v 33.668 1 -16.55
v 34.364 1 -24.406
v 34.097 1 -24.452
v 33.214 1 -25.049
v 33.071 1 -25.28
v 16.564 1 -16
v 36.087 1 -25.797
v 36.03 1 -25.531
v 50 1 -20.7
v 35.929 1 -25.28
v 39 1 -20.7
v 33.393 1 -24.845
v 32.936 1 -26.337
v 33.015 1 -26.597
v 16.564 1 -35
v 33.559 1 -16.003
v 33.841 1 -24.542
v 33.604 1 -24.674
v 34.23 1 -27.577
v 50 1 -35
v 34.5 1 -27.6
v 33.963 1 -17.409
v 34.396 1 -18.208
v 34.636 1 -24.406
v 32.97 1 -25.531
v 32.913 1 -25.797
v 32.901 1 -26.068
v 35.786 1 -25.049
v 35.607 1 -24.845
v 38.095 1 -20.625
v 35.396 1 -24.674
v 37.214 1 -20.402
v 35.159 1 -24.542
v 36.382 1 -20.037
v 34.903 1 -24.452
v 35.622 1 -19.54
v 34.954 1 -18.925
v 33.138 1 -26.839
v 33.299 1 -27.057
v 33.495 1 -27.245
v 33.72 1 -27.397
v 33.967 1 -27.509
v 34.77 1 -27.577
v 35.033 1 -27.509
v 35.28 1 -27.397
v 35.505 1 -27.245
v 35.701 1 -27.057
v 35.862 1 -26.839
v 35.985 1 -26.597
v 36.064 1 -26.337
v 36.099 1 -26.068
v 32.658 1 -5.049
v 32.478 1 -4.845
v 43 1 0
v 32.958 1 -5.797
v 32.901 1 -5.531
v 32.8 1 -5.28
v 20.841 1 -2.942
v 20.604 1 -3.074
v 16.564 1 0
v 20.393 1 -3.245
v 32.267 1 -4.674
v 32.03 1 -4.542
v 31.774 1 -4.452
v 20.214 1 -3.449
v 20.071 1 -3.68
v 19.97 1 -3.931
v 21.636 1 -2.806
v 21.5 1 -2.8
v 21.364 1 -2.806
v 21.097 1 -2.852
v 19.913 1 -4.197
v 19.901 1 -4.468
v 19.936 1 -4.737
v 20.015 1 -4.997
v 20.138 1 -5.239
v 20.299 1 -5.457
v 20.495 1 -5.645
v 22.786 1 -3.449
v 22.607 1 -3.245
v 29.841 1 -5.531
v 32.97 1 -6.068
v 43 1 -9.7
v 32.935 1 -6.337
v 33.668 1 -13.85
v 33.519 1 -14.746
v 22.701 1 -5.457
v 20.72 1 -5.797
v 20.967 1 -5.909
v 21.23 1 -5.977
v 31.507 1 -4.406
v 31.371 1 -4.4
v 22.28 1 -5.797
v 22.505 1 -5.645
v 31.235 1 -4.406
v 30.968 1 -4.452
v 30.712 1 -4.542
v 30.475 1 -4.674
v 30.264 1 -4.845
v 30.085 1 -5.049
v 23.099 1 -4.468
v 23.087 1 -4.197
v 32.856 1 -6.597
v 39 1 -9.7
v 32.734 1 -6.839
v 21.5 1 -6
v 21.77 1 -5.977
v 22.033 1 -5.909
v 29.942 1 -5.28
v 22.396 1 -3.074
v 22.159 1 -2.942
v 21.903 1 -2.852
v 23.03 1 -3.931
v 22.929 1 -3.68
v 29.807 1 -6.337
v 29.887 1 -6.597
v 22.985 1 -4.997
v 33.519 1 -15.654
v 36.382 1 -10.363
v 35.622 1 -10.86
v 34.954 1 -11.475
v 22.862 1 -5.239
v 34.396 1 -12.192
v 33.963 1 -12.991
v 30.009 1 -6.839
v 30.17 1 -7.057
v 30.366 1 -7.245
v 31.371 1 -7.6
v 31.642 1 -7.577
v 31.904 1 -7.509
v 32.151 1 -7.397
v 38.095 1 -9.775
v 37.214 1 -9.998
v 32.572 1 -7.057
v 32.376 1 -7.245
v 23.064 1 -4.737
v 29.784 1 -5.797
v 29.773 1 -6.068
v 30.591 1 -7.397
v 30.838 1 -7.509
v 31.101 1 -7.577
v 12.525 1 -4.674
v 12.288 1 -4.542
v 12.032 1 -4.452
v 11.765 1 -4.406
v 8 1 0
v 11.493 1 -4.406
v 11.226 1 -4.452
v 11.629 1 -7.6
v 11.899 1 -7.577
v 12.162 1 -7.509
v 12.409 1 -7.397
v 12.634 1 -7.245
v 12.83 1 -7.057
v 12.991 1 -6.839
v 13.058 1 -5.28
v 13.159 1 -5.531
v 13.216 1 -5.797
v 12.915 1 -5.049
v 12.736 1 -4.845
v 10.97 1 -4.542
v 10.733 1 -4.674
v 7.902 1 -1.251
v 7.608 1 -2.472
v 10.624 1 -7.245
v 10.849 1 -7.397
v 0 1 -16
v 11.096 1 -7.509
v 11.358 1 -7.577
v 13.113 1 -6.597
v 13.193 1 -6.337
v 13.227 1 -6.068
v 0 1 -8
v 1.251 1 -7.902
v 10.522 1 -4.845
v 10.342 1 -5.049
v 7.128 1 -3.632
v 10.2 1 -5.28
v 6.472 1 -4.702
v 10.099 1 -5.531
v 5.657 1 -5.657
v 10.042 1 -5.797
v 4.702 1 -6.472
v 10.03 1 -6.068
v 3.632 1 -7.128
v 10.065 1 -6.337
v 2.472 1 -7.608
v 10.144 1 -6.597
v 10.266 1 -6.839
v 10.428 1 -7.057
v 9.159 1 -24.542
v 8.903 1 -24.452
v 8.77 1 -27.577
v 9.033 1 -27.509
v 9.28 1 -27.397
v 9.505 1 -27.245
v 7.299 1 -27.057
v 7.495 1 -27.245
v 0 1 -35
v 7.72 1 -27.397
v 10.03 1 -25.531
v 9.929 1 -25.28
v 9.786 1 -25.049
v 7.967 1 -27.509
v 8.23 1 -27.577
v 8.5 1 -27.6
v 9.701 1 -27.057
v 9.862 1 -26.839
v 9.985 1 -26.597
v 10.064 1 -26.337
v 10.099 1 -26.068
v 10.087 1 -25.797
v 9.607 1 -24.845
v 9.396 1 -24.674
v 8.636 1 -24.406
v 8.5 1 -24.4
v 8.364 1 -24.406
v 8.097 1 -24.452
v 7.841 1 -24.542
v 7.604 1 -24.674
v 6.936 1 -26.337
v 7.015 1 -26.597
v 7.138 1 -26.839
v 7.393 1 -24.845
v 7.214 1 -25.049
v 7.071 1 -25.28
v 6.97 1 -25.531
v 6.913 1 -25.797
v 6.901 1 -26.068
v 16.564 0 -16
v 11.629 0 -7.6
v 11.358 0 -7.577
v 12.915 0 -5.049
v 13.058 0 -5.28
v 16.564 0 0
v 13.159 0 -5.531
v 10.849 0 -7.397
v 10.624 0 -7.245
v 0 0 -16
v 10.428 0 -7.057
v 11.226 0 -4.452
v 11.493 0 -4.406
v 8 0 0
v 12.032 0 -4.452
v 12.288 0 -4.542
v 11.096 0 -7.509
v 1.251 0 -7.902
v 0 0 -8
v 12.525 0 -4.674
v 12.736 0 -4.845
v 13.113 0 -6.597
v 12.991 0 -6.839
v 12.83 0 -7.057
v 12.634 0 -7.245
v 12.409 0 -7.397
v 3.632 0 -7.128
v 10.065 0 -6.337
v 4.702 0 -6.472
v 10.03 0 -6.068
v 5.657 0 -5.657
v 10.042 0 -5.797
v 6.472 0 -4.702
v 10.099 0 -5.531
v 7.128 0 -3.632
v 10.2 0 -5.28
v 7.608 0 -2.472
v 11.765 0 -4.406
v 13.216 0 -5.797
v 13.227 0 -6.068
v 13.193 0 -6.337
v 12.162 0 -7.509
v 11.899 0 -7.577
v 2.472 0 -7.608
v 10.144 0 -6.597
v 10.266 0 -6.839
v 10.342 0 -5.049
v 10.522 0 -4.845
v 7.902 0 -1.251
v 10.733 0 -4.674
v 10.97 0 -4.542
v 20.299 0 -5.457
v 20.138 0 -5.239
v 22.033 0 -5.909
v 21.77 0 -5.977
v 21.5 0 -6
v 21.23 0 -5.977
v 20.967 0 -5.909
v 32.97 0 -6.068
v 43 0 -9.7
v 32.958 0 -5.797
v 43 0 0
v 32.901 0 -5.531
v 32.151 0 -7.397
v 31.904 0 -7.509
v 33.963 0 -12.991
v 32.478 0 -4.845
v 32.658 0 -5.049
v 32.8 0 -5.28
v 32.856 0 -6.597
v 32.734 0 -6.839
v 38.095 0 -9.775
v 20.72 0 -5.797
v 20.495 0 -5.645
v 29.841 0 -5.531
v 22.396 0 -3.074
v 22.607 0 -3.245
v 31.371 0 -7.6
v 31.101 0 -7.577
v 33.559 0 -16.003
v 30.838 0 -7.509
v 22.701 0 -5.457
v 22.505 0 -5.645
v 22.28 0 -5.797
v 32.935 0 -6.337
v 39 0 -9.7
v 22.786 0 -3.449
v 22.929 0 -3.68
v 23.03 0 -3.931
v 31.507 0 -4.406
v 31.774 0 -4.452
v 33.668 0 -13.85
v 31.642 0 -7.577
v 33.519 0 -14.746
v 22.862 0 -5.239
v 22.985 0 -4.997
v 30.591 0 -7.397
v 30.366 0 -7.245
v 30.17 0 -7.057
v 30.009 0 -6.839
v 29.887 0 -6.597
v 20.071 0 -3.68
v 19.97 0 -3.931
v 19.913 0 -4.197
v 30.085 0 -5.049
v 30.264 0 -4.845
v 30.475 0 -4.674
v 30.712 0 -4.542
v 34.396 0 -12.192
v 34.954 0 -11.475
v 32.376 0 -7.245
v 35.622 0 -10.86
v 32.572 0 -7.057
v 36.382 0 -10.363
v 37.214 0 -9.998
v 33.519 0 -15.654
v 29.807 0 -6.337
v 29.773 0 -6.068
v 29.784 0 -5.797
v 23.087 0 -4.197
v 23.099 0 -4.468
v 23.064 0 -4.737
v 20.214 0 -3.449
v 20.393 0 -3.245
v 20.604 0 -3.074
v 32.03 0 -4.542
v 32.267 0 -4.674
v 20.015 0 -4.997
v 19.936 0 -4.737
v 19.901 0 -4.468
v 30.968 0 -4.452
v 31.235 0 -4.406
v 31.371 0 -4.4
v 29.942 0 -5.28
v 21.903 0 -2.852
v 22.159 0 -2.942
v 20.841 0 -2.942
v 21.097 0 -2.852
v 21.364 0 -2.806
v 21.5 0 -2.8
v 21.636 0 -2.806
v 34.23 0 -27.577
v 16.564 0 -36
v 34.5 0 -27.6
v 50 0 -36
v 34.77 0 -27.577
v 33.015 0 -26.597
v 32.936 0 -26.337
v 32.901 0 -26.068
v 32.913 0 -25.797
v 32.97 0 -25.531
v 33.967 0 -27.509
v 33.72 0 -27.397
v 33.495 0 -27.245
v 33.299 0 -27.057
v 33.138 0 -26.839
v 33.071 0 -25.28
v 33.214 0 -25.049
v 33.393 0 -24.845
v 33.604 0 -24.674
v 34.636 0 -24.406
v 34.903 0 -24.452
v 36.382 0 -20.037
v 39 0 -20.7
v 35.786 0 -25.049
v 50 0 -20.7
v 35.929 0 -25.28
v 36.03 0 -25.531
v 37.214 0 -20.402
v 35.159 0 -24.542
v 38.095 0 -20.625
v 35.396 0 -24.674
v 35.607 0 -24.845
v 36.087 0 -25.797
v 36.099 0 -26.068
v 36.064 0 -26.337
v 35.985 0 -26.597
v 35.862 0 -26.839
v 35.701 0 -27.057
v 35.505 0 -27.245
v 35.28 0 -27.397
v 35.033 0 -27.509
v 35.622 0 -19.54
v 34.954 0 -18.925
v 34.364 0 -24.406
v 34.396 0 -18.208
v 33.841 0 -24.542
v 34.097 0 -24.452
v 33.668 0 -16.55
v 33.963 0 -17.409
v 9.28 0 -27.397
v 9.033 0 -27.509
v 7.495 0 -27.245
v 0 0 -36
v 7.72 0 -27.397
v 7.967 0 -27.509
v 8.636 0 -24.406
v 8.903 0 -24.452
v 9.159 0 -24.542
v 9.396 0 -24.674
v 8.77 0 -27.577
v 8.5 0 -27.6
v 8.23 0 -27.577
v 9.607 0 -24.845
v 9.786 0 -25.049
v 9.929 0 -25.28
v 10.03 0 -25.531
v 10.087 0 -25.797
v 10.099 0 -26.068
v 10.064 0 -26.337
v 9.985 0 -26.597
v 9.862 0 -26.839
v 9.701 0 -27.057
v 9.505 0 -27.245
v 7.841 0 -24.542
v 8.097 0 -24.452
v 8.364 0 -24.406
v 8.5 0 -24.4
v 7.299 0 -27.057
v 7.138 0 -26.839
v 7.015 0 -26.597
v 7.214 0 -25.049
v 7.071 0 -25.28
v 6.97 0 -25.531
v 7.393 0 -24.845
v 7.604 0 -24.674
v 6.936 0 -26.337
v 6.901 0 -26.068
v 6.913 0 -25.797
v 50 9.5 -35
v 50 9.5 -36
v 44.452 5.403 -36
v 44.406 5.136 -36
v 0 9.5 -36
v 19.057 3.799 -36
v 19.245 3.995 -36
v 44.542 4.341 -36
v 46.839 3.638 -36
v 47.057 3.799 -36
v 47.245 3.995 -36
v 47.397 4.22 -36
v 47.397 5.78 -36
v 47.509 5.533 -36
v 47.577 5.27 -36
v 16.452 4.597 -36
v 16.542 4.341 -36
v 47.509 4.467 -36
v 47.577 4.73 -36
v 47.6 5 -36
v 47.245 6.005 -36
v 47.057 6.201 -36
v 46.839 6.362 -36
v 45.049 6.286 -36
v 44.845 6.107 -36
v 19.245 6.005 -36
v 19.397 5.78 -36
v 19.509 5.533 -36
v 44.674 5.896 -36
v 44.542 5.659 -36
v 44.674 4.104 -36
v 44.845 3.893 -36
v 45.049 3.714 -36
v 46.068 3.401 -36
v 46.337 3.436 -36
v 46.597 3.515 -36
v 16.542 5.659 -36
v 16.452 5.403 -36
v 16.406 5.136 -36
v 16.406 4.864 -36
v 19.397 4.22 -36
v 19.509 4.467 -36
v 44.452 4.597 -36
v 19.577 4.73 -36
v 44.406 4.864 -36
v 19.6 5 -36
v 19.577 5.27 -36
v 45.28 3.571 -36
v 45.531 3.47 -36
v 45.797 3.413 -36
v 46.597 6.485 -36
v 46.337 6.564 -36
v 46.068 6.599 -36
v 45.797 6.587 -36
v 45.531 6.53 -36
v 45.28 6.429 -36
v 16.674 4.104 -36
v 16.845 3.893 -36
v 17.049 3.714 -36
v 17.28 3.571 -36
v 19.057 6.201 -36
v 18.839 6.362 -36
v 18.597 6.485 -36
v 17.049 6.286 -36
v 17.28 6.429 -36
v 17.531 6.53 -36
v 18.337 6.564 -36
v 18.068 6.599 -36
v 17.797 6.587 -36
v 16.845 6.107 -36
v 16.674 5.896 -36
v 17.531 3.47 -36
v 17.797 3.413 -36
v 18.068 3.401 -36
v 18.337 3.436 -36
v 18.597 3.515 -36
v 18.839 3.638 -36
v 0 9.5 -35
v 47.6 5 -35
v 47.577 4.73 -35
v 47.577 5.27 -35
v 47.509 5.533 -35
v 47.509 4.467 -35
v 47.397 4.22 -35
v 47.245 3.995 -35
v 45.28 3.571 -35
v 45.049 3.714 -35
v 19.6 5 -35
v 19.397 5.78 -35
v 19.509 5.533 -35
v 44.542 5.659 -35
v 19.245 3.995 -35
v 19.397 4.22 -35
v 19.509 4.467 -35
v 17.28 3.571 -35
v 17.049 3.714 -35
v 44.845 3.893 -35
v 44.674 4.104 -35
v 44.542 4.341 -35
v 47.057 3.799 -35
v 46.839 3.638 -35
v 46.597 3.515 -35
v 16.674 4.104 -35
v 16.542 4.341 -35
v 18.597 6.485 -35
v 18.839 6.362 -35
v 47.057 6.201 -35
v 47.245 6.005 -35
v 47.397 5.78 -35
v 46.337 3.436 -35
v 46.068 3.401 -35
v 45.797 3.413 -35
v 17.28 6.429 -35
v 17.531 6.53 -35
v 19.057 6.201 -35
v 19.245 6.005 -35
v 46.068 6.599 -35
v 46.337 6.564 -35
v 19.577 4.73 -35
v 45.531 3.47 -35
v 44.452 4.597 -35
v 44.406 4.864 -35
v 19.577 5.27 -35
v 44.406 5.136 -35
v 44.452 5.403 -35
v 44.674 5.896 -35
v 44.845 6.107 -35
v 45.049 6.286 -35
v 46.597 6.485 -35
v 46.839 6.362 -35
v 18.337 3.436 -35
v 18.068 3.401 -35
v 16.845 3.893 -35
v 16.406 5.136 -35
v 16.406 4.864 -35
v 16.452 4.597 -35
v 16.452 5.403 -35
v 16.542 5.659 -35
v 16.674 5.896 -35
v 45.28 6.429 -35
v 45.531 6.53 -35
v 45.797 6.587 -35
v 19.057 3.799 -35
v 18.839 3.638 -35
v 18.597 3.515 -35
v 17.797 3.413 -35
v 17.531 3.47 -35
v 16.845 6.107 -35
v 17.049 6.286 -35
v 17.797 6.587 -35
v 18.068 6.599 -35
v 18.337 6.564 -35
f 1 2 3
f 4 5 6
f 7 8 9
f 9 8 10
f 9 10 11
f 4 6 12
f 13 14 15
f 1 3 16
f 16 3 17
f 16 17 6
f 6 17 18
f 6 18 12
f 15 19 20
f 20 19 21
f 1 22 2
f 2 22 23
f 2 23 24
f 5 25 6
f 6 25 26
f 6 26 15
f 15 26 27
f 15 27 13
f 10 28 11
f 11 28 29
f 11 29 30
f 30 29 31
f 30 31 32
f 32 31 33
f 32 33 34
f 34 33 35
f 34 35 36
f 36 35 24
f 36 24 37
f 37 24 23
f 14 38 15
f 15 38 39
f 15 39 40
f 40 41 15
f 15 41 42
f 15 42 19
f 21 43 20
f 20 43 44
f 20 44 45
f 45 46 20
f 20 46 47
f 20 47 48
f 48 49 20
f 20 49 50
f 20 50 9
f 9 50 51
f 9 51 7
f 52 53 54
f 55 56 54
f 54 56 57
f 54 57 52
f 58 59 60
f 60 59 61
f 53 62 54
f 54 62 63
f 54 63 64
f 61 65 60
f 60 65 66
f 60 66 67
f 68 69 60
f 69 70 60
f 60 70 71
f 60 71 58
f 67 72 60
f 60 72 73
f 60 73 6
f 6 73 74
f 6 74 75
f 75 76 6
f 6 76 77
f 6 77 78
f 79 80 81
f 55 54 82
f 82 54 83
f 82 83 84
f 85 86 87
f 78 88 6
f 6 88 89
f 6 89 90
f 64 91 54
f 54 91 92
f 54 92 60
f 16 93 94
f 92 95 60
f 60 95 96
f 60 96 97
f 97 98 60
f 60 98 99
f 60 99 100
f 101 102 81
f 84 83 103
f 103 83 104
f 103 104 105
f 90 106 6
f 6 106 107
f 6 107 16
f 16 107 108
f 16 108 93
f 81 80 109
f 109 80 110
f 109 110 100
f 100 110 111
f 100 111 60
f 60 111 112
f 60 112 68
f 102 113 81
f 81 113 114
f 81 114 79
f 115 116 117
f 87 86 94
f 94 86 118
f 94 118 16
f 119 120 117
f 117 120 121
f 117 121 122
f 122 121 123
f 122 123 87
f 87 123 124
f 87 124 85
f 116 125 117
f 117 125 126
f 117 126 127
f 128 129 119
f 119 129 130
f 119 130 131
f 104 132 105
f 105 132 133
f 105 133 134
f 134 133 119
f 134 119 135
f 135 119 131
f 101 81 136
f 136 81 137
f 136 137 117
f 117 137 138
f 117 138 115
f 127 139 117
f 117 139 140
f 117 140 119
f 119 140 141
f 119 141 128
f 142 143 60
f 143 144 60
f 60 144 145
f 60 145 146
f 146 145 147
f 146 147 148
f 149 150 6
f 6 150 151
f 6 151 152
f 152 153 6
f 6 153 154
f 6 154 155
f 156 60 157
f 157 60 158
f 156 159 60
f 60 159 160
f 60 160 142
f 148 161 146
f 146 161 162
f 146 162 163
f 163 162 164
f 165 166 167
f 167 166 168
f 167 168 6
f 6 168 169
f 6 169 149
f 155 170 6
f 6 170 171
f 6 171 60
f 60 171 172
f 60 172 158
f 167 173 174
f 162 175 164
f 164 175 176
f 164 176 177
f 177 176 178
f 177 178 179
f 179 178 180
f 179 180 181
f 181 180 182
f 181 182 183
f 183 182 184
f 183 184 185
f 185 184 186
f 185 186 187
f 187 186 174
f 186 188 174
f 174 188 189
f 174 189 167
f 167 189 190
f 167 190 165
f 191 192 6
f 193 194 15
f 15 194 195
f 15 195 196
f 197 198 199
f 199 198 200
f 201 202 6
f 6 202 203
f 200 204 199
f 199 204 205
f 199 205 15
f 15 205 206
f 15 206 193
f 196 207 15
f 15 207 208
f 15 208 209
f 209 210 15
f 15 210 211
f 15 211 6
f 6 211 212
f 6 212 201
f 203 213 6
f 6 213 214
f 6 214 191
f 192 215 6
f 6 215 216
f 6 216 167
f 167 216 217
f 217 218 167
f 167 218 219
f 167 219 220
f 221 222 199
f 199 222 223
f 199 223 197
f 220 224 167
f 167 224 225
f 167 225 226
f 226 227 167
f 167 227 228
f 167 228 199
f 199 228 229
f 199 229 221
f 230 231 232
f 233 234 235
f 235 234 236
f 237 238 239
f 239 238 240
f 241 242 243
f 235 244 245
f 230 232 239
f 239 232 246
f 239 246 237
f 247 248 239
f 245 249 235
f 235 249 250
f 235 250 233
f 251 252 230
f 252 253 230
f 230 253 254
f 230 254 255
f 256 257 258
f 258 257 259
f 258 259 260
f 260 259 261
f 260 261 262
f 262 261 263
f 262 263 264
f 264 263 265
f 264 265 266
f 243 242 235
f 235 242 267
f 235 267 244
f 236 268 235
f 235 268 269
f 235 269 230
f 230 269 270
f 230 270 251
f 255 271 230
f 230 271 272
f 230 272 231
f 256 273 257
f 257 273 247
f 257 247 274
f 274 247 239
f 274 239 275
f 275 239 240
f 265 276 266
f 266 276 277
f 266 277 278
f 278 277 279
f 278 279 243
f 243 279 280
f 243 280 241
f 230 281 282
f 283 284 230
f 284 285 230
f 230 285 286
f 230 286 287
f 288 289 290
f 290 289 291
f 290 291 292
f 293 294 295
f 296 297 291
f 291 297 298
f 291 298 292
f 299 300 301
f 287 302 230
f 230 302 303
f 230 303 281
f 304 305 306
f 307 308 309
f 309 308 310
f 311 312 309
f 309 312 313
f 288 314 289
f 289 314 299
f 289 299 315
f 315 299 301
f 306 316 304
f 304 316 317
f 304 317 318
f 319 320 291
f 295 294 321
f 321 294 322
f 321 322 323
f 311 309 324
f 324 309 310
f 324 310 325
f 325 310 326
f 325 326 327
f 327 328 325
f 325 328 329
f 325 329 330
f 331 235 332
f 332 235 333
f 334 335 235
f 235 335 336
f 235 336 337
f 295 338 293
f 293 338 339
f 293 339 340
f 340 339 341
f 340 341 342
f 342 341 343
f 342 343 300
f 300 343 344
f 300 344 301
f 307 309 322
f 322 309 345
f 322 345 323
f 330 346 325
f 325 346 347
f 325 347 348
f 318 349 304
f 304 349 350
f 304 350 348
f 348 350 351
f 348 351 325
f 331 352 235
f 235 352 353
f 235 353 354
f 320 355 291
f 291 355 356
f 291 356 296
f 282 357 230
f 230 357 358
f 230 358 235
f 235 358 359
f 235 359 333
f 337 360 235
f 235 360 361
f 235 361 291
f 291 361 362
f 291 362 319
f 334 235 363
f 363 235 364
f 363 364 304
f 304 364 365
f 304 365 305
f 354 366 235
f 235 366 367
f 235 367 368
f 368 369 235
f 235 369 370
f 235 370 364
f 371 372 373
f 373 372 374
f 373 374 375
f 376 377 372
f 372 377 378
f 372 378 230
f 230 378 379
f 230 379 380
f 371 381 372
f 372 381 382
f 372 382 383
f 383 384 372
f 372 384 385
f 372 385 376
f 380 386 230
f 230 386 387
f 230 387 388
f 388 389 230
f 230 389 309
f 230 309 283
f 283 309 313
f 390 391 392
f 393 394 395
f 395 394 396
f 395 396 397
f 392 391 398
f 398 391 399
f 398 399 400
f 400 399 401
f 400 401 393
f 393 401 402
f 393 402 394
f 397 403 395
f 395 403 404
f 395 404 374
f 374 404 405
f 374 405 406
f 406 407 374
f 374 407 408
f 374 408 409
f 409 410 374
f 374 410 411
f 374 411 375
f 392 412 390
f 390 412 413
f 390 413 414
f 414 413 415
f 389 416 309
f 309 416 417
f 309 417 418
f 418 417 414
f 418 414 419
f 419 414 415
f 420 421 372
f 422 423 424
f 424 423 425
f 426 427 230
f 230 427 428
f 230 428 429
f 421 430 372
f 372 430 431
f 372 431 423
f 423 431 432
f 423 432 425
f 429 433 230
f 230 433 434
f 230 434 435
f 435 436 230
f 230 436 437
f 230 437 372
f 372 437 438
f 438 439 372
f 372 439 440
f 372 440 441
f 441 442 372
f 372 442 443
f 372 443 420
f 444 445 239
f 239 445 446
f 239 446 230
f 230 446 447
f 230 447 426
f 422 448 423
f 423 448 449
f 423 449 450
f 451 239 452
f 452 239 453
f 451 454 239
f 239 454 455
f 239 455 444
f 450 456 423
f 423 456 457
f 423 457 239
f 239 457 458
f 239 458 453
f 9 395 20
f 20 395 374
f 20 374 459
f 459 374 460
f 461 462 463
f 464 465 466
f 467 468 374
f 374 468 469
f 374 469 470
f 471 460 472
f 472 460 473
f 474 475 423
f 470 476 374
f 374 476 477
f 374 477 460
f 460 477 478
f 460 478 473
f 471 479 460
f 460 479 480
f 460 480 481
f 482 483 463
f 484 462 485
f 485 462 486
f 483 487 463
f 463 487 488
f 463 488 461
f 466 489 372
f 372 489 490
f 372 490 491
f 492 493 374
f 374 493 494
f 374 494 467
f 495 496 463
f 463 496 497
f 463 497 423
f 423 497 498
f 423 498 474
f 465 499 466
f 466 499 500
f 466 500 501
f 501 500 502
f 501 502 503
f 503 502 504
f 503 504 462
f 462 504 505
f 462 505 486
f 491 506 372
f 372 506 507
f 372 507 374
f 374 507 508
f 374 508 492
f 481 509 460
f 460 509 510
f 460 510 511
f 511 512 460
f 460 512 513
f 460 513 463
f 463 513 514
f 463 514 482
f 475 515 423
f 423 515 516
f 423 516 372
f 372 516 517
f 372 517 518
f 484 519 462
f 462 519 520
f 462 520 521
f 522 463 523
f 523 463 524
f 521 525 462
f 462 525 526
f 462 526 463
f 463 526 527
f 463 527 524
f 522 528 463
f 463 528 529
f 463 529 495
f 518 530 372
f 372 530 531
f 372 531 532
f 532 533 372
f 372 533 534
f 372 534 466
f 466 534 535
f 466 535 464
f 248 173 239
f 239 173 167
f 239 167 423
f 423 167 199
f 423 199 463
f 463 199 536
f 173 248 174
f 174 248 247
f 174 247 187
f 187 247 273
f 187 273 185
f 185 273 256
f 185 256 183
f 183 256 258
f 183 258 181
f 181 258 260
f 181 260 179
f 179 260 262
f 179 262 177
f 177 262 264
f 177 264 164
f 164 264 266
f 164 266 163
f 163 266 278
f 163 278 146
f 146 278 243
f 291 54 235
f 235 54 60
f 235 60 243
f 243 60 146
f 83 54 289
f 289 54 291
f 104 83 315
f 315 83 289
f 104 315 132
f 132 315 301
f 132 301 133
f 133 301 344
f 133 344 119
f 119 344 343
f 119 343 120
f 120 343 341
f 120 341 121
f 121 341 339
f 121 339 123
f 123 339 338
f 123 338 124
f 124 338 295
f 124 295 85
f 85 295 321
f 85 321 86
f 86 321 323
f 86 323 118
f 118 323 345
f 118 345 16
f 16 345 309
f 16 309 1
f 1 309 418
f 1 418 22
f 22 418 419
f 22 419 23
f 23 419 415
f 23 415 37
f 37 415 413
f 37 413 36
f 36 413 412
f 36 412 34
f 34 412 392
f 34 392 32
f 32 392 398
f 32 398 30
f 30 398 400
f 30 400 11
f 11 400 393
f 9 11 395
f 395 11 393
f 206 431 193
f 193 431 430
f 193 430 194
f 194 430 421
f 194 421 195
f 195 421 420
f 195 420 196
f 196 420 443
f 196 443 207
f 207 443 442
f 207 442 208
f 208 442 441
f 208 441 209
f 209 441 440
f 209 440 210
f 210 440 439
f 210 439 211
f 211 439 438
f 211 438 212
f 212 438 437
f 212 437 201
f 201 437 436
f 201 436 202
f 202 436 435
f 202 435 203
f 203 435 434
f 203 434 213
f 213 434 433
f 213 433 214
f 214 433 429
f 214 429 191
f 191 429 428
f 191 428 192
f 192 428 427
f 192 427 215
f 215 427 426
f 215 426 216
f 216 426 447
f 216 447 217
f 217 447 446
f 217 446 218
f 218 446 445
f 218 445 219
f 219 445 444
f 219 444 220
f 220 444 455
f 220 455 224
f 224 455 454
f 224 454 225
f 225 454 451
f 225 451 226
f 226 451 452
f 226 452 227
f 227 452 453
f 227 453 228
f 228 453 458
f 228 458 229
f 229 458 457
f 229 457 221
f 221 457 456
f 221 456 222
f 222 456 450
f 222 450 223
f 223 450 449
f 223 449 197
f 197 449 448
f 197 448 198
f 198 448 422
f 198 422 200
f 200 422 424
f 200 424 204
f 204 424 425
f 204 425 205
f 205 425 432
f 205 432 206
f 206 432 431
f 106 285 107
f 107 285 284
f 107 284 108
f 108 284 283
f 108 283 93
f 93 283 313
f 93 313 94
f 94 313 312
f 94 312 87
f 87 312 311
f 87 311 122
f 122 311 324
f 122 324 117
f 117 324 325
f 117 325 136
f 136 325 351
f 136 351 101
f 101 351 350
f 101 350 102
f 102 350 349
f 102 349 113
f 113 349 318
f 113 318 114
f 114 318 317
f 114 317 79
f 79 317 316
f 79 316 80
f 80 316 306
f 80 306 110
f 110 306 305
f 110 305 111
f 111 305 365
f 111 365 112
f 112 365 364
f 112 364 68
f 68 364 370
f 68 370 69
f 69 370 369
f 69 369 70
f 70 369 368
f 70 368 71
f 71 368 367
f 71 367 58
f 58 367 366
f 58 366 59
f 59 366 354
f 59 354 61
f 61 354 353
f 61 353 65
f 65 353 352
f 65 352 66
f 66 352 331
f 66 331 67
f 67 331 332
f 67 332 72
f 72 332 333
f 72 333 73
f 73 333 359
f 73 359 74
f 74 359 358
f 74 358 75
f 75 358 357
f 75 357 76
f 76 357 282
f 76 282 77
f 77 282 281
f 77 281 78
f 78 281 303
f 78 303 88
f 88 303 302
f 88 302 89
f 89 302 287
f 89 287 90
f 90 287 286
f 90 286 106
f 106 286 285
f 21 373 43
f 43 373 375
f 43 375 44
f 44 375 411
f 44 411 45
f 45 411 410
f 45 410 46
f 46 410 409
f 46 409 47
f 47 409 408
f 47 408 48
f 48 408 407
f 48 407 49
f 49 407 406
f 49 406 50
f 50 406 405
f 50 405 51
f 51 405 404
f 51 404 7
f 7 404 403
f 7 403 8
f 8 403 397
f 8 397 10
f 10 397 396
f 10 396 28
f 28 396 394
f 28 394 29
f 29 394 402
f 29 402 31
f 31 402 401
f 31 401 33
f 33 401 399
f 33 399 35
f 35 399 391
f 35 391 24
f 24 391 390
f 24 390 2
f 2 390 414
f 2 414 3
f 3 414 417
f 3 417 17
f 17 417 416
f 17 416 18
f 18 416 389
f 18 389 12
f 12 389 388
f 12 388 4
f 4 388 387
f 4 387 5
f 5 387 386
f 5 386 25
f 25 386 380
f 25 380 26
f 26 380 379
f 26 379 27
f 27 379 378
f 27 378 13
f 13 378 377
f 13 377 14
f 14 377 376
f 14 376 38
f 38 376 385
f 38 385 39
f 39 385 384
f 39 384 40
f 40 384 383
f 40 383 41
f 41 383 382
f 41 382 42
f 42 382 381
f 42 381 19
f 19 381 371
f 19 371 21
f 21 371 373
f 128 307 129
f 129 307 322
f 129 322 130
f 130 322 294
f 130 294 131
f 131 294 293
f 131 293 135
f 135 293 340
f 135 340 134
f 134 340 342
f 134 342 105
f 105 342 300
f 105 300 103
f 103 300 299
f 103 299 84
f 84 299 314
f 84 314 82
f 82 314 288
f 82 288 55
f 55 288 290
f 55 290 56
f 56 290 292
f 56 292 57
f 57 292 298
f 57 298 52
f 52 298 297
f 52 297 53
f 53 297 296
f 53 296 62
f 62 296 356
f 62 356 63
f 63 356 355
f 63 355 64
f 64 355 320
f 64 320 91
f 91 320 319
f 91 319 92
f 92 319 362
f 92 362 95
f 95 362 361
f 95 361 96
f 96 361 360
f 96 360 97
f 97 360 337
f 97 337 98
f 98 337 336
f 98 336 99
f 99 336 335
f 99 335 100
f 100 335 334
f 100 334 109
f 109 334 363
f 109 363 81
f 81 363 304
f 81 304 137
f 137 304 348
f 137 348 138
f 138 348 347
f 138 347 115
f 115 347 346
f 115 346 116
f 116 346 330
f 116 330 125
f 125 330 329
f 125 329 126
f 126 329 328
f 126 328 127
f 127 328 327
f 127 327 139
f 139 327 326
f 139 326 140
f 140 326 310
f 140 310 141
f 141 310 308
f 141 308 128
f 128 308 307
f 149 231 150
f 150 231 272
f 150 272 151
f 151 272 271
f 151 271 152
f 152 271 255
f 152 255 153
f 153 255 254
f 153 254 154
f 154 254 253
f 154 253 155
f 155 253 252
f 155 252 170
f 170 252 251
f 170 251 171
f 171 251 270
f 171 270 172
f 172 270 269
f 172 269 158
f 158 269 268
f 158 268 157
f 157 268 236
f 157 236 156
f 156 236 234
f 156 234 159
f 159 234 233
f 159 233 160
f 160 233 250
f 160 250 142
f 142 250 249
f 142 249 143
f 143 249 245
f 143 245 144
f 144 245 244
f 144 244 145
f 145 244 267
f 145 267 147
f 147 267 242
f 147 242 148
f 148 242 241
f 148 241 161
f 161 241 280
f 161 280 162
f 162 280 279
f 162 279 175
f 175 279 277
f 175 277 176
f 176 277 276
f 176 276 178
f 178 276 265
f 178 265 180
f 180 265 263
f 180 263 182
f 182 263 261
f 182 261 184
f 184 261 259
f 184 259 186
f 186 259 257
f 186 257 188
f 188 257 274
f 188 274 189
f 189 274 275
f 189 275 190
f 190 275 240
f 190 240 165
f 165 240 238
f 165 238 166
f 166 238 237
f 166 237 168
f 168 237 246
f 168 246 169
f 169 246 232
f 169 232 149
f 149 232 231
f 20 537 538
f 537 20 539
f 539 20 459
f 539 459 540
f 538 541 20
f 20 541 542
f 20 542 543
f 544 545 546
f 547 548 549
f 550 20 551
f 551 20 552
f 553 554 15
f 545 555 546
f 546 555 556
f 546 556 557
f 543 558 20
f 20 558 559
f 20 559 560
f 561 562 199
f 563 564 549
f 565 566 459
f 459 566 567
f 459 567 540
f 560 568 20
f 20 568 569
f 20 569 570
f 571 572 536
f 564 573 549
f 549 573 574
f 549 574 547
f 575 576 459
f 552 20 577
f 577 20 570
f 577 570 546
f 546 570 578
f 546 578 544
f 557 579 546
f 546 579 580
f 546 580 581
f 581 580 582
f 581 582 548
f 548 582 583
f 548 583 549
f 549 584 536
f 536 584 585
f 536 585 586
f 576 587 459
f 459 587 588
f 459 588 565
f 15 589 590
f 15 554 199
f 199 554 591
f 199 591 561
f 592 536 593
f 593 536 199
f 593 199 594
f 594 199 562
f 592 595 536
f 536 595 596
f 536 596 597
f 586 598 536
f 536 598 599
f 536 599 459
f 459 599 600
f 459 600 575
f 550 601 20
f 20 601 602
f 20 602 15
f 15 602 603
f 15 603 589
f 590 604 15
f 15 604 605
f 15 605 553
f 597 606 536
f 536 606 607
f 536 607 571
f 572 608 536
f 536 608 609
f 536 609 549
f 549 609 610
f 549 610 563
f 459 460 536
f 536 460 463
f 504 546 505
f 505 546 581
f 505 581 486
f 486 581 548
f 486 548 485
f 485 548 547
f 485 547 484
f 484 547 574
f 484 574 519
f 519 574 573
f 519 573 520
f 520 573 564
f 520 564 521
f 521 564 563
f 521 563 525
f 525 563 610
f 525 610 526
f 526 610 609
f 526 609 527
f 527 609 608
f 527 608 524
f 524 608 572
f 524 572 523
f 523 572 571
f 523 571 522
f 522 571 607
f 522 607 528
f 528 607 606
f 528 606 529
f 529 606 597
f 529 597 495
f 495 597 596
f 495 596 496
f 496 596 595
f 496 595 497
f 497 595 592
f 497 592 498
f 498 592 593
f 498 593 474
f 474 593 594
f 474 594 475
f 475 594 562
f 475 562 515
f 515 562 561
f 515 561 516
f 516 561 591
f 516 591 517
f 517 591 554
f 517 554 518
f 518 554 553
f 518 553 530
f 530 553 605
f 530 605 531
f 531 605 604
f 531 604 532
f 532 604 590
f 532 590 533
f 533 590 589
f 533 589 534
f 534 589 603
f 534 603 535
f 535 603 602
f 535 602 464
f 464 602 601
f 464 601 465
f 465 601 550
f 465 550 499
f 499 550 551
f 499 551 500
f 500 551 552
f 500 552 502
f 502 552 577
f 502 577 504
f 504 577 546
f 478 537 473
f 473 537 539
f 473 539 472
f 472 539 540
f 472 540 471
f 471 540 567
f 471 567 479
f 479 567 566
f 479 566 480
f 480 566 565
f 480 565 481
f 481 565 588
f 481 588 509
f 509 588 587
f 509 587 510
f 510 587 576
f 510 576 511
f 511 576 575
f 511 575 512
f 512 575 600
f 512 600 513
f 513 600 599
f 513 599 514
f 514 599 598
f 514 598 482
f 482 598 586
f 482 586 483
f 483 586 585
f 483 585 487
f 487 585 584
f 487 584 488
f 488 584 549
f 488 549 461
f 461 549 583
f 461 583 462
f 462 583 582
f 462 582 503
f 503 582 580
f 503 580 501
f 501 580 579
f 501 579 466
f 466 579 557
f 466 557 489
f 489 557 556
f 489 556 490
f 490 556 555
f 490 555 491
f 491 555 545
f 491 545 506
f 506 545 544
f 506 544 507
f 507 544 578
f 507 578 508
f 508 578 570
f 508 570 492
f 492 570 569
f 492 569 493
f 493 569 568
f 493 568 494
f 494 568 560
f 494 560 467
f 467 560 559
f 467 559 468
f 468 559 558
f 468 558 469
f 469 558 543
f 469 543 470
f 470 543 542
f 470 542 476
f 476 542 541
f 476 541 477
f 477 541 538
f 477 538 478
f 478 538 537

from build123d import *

# Parameters (mm, degrees)
SKETCH_1_R          = 1.6
EXTRUDE_1_DEPTH     = 1
SKETCH_2_W          = 50
SKETCH_2_H          = 1
EXTRUDE_2_DEPTH     = 8.5
SKETCH_3_R          = 1.6
CUT_EXTRUDE_1_DEPTH = 10


with BuildPart() as part:
    # 草图1 → 凸台-拉伸1 (new body)
    with BuildSketch(Plane(origin=(0, 0, 0), x_dir=(1, 0, 0), z_dir=(0, 1, 0))):
        with BuildLine():
            Line((8, 0), (43, 0))
            Line((43, 0), (43, 9.7))
            Line((43, 9.7), (39, 9.7))
            ThreePointArc((39, 9.7), (33.5, 15.2), (39, 20.7))
            Line((39, 20.7), (50, 20.7))
            Line((50, 20.7), (50, 36))
            Line((50, 36), (0, 36))
            Line((0, 36), (0, 8))
            ThreePointArc((0, 8), (5.656854249, 5.656854249), (8, 0))
        make_face()
        with Locations(Location((8.5, 26, 0), (0, 0, 270))):
            Circle(SKETCH_1_R, mode=Mode.SUBTRACT)
        with Locations(Location((21.5, 4.4, 0), (0, 0, 270))):
            Circle(SKETCH_1_R, mode=Mode.SUBTRACT)
        with Locations(Location((34.5, 26, 0), (0, 0, 90))):
            Circle(SKETCH_1_R, mode=Mode.SUBTRACT)
        with Locations(Location((31.371170143, 6, 0), (0, 0, 270))):
            Circle(SKETCH_1_R, mode=Mode.SUBTRACT)
        with Locations(Location((11.628829857, 6, 0), (0, 0, 90))):
            Circle(SKETCH_1_R, mode=Mode.SUBTRACT)
    extrude(amount=EXTRUDE_1_DEPTH)

    # 草图2 → 凸台-拉伸2 (add)
    with BuildSketch(Plane(origin=(0, 1, 0), x_dir=(1, 0, 0), z_dir=(0, 1, 0))):
        with Locations((25, 35.5)):
            Rectangle(SKETCH_2_W, SKETCH_2_H)
    extrude(amount=EXTRUDE_2_DEPTH)

    # 草图3 → 切除-拉伸1 (cut)
    with BuildSketch(Plane.XY.offset(-35)):
        with Locations((46, 5)):
            Circle(SKETCH_3_R)
        with Locations((18, 5)):
            Circle(SKETCH_3_R)
    extrude(amount=-CUT_EXTRUDE_1_DEPTH, mode=Mode.SUBTRACT)


solid = part.part
